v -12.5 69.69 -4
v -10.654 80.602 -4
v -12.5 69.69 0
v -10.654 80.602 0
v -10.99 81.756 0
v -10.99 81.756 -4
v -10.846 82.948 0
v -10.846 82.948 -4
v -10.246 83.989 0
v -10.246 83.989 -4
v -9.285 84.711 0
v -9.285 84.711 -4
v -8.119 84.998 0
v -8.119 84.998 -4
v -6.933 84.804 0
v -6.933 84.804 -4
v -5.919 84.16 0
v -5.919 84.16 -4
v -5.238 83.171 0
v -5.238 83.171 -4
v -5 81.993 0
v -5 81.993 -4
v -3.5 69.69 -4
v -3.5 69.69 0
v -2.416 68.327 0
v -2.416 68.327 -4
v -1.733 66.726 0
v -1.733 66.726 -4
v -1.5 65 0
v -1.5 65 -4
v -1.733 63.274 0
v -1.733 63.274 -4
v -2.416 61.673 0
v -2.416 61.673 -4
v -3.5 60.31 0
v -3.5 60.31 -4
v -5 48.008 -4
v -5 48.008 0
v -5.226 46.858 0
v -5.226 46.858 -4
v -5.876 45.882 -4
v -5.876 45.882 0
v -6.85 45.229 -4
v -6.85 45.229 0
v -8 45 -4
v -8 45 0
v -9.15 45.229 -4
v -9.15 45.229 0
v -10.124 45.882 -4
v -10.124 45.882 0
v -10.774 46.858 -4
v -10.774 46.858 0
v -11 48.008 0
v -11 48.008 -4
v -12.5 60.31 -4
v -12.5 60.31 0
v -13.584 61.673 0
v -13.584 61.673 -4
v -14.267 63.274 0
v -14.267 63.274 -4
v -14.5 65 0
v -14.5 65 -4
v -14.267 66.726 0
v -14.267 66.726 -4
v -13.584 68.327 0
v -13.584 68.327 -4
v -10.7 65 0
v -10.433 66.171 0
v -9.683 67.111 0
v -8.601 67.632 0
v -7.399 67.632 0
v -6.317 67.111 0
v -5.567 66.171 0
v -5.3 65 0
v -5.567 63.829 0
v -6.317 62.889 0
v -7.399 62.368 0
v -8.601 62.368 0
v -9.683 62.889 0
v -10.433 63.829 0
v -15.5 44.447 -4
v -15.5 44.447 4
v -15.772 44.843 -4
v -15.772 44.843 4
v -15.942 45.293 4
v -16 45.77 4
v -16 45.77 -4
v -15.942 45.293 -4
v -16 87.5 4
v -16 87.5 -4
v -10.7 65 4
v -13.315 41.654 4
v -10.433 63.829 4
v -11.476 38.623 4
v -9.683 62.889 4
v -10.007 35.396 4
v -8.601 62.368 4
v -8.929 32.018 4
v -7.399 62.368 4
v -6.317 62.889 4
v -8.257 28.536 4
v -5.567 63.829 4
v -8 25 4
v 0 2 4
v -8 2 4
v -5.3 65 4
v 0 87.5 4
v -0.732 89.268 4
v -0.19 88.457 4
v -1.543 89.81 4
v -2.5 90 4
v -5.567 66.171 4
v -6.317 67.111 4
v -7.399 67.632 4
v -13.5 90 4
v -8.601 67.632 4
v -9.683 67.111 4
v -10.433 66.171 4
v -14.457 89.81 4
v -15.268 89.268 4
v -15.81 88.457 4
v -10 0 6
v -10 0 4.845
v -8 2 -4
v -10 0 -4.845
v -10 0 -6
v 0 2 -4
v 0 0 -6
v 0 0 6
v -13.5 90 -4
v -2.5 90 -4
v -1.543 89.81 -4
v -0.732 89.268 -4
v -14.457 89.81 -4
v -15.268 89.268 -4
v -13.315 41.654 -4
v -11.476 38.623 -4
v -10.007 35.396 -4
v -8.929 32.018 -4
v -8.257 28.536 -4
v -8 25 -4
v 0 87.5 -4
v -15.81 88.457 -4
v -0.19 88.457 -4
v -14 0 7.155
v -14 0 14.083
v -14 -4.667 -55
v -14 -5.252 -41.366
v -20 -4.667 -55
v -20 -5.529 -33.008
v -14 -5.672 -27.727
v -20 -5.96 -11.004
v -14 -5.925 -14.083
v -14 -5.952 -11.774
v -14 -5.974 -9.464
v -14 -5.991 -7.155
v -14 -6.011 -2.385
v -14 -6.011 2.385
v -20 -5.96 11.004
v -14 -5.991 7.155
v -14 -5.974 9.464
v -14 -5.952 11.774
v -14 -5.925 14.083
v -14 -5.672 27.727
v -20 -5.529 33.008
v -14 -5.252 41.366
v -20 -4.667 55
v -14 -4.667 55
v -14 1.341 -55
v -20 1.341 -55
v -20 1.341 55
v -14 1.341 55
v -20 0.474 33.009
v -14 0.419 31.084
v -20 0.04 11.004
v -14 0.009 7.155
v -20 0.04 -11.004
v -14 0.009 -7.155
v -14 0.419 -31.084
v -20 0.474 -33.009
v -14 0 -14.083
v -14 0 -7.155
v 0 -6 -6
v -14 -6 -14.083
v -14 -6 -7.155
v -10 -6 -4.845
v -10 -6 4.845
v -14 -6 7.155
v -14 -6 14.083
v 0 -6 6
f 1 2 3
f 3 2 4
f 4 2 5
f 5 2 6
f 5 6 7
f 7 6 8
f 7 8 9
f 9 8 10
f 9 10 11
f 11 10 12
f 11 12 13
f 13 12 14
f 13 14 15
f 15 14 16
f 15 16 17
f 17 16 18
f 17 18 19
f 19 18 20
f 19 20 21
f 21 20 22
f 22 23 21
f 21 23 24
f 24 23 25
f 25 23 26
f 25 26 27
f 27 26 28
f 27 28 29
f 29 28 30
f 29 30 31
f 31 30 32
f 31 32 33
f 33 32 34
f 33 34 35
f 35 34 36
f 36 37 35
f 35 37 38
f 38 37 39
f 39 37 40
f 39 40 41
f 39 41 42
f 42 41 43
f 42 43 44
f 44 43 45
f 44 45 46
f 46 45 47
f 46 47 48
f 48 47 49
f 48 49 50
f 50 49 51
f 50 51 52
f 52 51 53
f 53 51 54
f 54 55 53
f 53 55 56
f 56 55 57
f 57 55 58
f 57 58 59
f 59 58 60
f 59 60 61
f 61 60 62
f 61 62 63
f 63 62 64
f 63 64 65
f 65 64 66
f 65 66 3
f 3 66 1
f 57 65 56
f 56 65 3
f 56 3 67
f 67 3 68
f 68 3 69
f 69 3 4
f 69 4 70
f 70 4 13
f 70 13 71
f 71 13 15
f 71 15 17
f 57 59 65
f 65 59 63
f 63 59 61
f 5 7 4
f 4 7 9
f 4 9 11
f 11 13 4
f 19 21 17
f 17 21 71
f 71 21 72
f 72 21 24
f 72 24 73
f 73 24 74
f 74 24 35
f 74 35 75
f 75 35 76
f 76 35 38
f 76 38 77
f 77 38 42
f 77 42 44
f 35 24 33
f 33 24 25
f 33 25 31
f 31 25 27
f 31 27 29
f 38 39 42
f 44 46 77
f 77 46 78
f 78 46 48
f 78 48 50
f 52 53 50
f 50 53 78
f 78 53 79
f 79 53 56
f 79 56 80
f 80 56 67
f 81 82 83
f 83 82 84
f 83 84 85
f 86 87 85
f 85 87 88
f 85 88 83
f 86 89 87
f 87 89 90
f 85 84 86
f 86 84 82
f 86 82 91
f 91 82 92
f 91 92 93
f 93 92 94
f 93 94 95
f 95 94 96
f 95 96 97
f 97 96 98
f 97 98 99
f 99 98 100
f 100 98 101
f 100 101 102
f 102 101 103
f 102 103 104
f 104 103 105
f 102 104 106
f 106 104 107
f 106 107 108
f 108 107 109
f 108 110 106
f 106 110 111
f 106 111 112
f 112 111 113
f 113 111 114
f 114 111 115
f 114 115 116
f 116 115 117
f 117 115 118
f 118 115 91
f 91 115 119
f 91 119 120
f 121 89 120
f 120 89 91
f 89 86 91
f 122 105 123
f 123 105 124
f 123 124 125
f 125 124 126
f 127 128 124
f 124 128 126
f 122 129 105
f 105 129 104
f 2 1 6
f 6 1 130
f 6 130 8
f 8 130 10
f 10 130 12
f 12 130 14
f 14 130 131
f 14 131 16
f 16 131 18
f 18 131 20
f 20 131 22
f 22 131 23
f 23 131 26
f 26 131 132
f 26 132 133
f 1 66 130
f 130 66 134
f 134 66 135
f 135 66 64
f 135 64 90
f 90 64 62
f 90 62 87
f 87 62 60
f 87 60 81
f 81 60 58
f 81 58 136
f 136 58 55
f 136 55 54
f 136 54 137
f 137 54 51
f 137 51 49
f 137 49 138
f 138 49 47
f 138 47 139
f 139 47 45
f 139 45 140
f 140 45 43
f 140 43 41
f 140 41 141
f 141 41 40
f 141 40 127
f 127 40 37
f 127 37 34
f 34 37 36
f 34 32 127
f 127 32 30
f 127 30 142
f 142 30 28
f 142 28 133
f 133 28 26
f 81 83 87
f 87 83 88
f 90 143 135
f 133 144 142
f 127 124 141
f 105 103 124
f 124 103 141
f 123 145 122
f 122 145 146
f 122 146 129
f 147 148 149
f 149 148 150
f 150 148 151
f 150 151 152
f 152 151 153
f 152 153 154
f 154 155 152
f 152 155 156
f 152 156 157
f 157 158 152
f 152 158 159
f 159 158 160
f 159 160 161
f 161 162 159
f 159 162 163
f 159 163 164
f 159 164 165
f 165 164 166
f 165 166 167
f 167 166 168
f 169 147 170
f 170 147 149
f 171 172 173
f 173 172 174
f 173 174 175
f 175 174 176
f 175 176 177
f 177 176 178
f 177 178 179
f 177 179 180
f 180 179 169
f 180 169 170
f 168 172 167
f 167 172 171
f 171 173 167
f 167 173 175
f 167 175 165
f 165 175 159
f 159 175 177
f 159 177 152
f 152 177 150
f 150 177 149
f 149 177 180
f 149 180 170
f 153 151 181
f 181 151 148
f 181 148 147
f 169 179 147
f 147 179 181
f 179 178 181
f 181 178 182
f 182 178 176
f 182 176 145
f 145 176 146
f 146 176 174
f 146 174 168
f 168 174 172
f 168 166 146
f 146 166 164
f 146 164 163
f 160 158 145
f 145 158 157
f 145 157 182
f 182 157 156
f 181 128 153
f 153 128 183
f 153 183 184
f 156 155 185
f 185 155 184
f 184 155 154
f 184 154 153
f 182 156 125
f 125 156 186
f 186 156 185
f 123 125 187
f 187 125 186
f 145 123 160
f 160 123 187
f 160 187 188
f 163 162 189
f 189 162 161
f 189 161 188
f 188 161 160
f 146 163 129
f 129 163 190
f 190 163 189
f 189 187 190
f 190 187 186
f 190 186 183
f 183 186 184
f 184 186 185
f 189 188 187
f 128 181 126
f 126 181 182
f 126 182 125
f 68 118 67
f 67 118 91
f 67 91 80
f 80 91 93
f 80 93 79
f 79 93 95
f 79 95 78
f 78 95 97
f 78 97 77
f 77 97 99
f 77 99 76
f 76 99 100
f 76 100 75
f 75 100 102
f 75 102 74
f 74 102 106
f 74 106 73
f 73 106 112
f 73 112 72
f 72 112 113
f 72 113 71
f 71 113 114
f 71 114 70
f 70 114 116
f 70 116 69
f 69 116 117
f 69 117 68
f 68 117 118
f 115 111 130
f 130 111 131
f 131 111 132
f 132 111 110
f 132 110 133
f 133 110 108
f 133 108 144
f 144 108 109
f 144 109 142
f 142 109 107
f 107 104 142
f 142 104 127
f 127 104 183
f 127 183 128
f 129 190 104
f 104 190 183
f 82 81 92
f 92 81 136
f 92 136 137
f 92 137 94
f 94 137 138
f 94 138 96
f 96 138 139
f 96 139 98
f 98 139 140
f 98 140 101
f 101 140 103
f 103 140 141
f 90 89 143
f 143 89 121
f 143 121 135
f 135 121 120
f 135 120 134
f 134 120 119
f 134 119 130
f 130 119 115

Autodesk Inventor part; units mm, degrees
ref_plane "YZ Plane" through (0, 0, 0) normal (1, 0, 0) x (0, 1, 0)
ref_plane "XZ Plane" through (0, 0, 0) normal (0, 1, 0) x (-1, 0, 0)
ref_plane "XY Plane" through (0, 0, 0) normal (0, 0, 1) x (1, 0, 0)
sketch "Skizze2" plane through (0, 0, 0) normal (0, 0, 1) x (1, 0, 0)
  line L0 (-45.7004, 0) -> (8.2208, 0) projected
  line L1 (0, -18.1036) -> (0, 108.6213) projected
  circle A0 centre (-8, 65) radius 2.7
  line L2 (0, 0) -> (0, 87.5)
  arc A1 (0, 87.5) -> (-2.5, 90) centre (-2.5, 87.5) ccw
  line L3 (-13.5, 90) -> (-2.5, 90)
  arc A2 (-13.5, 90) -> (-16, 87.5) centre (-13.5, 87.5) ccw
  line L4 (-16, 87.5) -> (-16, 45)
  line L5 (-8, 0) -> (-8, 25)
  line L6 (0, 0) -> (-8, 0)
  arc A3 (-8, 25) -> (-16, 45) centre (-37.9973, 24.6011) ccw
  point P0 (0, 0)
  point P1 (-4, 0)
  dimension "d0" = 90
  dimension "d1" = 8
  dimension "d2" = 16
  dimension "d4" = 2.5
  dimension "d5" = 2.5
  dimension "d6" = 5.4
  dimension "d8" = 25
  dimension "d11" = 25
  dimension "d16" = 2.5
  dimension "d17" = 2.5
  dimension "d18" = 2.5
  dimension "d19" = 2.5
  dimension "d90" = 45
  dimension "d126" = 30
  dimension "d131" = 40
  dimension "d132" = 8
extrude "Extrusion1" add sketch "Skizze2" along normal mid plane 8
sketch "Skizze5" plane through (-8, 0, 4) normal (0, -1, 0) x (1, 0, 0)
  line L0 (8, -8) -> (8, 0) projected
  line L1 (0, 0) -> (8, 0) projected
  line L2 (0, -8) -> (0, 0) projected
  line L3 (8, -8) -> (0, -8) projected
  line L4 (-2, -10) -> (-2, 2)
  line L5 (-2, 2) -> (10, 2)
  line L6 (10, 2) -> (10, -10)
  line L7 (10, -10) -> (-2, -10)
  line L8 (8, -10) -> (8, 2)
  line L9 (8, -10) -> (-6, -18.0829)
  line L10 (8, -10) -> (48, -10) construction
  line L11 (8, 2) -> (-6, 10.0829)
  line L12 (8, 2) -> (48, 2) construction
  line L13 (-6, 26.9678) -> (-6, -33.1167)
  line L14 (-2, 0.8453) -> (-6, 3.1547)
  line L15 (-6, -11.1547) -> (-2, -8.8453)
  point P0 (8, -4)
  dimension "d103" = 2
  dimension "d104" = 150
  dimension "d107" = 150
  dimension "d108" = 6
  dimension "d113" = 6
  dimension "d114" = 6
extrude "Extrusion3" add sketch "Skizze5" along normal blind 6 contours L3 L2 L1 L0 | L8 L7 L4 L5 L1 L2 L3 | L9 L13 L15 L4 L7 | L5 L4 L14 L13 L11
sketch "Skizze6" plane through (-14, 0, -14.0829) normal (-1, 0, 0) x (0, 0, 1)
  arc A0 (-91.4171, 6.8936) -> (119.5829, 6.8936) centre (14.0829, 1117.4186) ccw
  line L0 (14.0829, 1343.255) -> (14.0829, -237.5996) projected
  line L1 (-134.6641, 0) -> (162.8299, 0) projected
  line L2 (6.9282, 0) -> (0, 0) projected
  line L3 (0, 0) -> (0, -6) projected
  line L4 (6.9282, -6) -> (0, -6) projected
  line L5 (6.9282, 0) -> (6.9282, -6) projected
  line L6 (28.1658, 0) -> (21.2376, 0) projected
  line L7 (21.2376, 0) -> (21.2376, -6) projected
  line L8 (28.1658, -6) -> (21.2376, -6) projected
  line L9 (28.1658, 0) -> (28.1658, -6) projected
  line L10 (69.0829, 4.8846) -> (69.0829, -11.7632)
  line L11 (-40.9171, 6.8936) -> (-40.9171, -11.0991)
  arc A1 (-40.9171, 1.3407) -> (69.0829, 1.3407) centre (14.0829, 1117.4186) ccw
  arc A2 (-92.1649, -0.9783) -> (120.3307, -0.9783) centre (14.0829, 1117.4186) ccw
  point P0 (14.0829, 0)
  point P1 (-40.9171, 0.6181)
  point P2 (69.0829, -4.6666)
  point P3 (69.0829, 0.908)
  point P4 (-40.9171, 1.6575)
  point P5 (-40.9171, -4.6666)
  dimension "d122" = 6
  dimension "d127" = 110
extrude "Extrusion4" add sketch "Skizze6" along normal blind 6 contours A1 L1 L11 | L1 L3 A2 L11 | A1 L0 A2 L5 L1 | L10 L1 A1 | A1 L1 L7 A2 L0 | L1 L5 A2 L3 | L10 A2 L9 L1 | L1 L9 A2 L7
chamfer "Fasen6" distance 2 angle 45 3 edges at (-4, 0, -4) (-8, 0, 0) (-4, 0, 4)
fillet "Rundung1" radius 2 1 edges at (-16, 45, 0)
sketch "Skizze7" plane through (0, 0, -4) normal (0, 0, -1) x (-1, 0, 0)
  arc A0 (15.4998, 44.447) -> (16, 45.7701) centre (14, 45.7701) ccw projected
  line L0 (16, 45.7701) -> (16, 87.5) projected
  arc A1 (16, 87.5) -> (13.5, 90) centre (13.5, 87.5) ccw projected
  line L1 (13.5, 90) -> (2.5, 90) projected
  arc A2 (2.5, 90) -> (0, 87.5) centre (2.5, 87.5) ccw projected
  line L2 (0, 87.5) -> (0, 2) projected
  line L3 (8, 2) -> (0, 2) projected
  line L4 (8, 2) -> (8, 25) projected
  arc A3 (15.4998, 44.447) -> (8, 25) centre (37.9973, 24.6011) ccw projected
  circle A4 centre (8, 65) radius 2.7 projected
  circle A5 centre (8, 65) radius 6.5
  line L5 (8, 85) -> (8, 45)
  line L6 (12.5, 82.2483) -> (12.5, 48.2483)
  line L7 (3.5, 48.5932) -> (3.5, 82.5932)
  circle A6 centre (8, 82) radius 3
  circle A7 centre (8, 48) radius 3
  line L8 (17.259, 81.9916) -> (-1.9844, 81.9916)
  line L9 (19.4429, 48.0084) -> (-6.0611, 48.0084)
  line L10 (5, 48.0084) -> (3.5, 60.3096)
  line L11 (11, 48.0084) -> (12.5, 60.3096)
  line L12 (3.5, 69.6904) -> (5, 81.9929)
  line L13 (12.5, 69.6904) -> (10.4193, 81.9916)
  point P0 (0, 0)
  point P1 (10.6543, 80.602)
  dimension "d142" = 6
  dimension "d133" = 13
  dimension "d136" = 20
  dimension "d137" = 20
  dimension "d143" = 3
  dimension "d144" = 6
  dimension "d145" = 3
  dimension "d146" = 9
extrude "Extrusion5" cut sketch "Skizze7" against normal blind 4 contours L9 L5 A7 | A7 L5 L9 | A7 L5 A5 L11 | A7 L10 A5 L5 | L5 L9 A7 | L5 A7 L9 | L6 A5 | A5 L5 A4 L6 | A5 L5 A6 L13 | L8 L5 A6 | A6 L13 L8 | A5 L7 L5 A4 | A5 L12 A6 L5 | A6 L5 L8 L13 | A5 L7 | A6 L8 L5 | L5 L8 A6
properties part number "Gripper neu"
